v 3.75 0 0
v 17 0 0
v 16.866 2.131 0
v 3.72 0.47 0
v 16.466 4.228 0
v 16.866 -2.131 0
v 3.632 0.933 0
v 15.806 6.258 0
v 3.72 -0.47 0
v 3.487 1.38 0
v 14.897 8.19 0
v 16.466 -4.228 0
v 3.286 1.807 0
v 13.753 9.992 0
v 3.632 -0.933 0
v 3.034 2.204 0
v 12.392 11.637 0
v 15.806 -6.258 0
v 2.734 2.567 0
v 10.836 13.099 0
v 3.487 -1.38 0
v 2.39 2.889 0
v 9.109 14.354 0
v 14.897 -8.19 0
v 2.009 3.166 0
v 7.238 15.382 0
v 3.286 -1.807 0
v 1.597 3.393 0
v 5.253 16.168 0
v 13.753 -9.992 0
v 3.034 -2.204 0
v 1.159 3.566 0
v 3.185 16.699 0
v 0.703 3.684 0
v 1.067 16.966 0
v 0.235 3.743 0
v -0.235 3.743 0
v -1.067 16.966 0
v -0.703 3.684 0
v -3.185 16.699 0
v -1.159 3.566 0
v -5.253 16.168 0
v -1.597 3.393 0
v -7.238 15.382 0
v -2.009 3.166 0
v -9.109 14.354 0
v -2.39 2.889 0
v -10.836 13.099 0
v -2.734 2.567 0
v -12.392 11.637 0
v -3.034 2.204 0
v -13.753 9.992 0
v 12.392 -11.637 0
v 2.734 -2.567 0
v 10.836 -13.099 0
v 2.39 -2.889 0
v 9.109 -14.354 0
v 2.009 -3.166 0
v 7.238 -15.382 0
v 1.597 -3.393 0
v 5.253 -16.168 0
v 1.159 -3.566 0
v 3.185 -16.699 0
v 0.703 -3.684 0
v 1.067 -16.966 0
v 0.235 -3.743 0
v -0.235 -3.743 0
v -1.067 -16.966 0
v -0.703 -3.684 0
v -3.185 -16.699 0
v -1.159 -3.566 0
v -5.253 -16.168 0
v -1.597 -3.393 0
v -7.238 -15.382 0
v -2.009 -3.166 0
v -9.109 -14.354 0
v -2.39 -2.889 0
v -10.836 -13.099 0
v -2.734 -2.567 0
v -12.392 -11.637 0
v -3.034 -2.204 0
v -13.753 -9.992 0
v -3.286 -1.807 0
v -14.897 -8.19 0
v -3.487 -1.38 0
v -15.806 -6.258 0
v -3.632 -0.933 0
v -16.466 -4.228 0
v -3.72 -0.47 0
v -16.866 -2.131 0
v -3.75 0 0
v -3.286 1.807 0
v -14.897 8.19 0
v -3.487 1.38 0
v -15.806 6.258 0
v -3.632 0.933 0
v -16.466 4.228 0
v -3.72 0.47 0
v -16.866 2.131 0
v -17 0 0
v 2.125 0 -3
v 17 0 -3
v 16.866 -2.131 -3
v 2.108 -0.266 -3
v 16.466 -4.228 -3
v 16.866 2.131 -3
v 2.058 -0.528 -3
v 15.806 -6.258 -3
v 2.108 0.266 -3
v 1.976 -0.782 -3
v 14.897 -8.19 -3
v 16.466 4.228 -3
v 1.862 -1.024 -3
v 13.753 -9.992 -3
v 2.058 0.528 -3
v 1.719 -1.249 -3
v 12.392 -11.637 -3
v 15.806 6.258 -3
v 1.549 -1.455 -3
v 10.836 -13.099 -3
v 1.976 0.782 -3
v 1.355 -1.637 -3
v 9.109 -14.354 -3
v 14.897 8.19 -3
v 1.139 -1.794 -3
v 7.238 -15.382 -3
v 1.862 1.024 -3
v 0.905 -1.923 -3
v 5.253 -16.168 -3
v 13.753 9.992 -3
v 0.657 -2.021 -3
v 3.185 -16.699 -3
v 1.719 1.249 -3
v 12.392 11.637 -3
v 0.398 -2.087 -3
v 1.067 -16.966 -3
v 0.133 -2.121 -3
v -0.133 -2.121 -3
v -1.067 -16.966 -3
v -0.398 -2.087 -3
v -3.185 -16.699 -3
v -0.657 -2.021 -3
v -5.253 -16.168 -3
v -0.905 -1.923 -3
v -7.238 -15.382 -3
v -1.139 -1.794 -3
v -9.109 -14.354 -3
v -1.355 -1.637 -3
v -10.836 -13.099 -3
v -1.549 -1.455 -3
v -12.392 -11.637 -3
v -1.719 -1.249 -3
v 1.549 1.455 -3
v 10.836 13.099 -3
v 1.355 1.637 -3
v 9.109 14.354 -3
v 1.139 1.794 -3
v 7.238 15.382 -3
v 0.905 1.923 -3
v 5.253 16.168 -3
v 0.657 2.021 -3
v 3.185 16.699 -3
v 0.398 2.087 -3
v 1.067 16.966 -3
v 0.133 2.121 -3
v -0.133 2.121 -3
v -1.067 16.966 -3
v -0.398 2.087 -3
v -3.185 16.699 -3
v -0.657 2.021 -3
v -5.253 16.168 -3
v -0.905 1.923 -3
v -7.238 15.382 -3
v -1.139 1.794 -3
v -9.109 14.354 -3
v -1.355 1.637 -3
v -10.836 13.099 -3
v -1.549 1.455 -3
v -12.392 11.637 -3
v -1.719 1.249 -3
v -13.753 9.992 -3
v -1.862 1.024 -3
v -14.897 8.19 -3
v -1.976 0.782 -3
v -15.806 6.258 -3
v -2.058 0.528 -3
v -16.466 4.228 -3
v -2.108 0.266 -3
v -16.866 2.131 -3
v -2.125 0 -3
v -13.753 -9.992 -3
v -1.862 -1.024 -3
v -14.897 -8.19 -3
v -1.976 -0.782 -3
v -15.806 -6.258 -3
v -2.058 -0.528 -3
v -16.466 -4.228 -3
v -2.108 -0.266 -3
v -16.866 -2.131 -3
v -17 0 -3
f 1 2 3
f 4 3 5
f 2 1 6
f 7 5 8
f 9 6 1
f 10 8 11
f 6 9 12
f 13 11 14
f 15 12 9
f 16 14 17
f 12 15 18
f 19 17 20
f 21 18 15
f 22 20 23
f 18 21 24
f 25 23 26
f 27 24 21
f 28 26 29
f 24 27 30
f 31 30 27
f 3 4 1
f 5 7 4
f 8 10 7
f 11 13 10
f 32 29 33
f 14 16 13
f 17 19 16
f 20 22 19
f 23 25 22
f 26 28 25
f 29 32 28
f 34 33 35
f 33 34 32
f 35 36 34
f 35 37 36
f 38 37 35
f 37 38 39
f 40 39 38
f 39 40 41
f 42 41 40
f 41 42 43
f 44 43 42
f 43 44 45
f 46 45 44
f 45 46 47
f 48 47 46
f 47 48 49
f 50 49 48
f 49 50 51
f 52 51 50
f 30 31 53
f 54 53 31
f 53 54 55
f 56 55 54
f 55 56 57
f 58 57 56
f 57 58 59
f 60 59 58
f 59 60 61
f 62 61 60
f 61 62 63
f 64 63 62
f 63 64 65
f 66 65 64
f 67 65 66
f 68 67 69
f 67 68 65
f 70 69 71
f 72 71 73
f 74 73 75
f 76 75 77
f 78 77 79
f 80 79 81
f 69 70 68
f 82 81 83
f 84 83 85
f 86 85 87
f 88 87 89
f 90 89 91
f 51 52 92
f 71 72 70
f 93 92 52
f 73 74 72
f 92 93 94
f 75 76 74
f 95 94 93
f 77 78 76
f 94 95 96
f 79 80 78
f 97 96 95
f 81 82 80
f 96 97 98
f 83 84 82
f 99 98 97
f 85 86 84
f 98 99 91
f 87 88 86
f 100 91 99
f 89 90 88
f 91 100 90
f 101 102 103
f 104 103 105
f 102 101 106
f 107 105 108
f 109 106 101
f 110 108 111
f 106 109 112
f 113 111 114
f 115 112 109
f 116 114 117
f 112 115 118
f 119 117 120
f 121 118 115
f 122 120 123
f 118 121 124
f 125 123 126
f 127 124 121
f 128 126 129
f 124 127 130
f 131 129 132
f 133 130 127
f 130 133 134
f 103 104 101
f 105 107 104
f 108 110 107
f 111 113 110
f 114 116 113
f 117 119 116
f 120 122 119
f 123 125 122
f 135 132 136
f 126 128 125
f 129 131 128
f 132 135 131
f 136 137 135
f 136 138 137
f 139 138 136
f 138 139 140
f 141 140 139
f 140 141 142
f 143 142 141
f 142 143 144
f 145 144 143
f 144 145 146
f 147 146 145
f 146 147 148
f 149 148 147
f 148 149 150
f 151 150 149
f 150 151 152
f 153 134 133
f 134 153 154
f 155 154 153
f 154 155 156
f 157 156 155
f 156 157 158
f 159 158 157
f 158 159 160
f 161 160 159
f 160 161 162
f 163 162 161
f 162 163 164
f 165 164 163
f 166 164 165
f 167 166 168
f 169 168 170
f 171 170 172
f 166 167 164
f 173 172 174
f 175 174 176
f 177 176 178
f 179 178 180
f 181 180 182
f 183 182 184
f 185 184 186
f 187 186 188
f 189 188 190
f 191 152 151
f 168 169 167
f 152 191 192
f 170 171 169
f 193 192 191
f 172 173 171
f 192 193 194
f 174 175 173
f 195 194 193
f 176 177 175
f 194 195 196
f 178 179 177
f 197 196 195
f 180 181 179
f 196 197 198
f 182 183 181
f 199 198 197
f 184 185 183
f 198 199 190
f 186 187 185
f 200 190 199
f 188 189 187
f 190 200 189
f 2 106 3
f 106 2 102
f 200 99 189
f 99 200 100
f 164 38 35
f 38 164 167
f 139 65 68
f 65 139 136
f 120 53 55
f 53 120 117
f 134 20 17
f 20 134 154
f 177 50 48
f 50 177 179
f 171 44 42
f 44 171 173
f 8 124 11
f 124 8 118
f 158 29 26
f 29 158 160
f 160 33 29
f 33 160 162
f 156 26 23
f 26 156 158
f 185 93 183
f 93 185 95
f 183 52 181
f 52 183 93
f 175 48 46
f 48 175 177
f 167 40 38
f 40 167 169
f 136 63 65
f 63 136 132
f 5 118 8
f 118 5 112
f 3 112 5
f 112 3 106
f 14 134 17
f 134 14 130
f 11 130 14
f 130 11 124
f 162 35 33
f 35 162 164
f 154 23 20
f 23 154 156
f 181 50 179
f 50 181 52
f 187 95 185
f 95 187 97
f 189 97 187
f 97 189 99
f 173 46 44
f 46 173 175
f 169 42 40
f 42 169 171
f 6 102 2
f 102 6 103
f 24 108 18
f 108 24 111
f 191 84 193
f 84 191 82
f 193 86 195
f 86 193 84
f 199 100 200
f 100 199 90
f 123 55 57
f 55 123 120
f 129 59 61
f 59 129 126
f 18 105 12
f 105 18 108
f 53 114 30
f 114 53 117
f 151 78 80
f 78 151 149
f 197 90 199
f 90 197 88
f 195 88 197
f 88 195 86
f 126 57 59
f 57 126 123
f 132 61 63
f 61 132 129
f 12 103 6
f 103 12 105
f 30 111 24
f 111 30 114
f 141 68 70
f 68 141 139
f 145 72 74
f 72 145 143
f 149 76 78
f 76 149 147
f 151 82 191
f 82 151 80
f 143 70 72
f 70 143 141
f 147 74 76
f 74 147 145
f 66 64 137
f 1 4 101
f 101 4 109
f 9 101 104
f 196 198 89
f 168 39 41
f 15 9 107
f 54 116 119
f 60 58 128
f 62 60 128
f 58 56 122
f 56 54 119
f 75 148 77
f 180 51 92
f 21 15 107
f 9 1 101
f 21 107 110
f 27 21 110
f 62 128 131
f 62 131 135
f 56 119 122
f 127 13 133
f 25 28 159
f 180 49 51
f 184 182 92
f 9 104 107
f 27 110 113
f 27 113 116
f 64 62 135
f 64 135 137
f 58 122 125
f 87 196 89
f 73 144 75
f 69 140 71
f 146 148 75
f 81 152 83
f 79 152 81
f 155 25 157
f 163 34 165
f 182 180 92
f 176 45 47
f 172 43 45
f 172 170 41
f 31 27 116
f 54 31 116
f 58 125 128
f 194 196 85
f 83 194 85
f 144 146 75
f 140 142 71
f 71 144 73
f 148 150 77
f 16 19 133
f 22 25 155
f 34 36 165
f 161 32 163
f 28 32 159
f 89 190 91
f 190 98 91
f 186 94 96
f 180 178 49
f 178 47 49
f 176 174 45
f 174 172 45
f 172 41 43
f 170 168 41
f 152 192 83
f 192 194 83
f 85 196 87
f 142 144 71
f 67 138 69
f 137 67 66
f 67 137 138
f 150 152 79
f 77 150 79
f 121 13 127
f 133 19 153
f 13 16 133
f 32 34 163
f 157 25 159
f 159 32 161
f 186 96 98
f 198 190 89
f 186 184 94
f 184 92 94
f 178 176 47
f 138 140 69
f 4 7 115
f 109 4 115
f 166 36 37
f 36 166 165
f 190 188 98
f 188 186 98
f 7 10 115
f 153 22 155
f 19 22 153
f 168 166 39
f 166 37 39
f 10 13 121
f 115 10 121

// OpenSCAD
$fn = 50;


difference() {
	union() {
		translate(v = [0, 0, -3.0000000000]) {
			cylinder(h = 3, r = 7.0000000000);
		}
		translate(v = [0, 0, -3.0000000000]) {
			cylinder(h = 3, r = 17.0000000000);
		}
	}
	union() {
		translate(v = [0, 0, 0]) {
			rotate(a = [0, 0, 0]) {
				difference() {
					union() {
						#translate(v = [0, 0, -3.0000000000]) {
							cylinder(h = 3, r = 2.0000000000);
						}
						#translate(v = [0, 0, -3]) {
							cylinder(h = 3, r = 7.0000000000, r1 = 2.1250000000, r2 = 3.7500000000);
						}
						#translate(v = [0, 0, -3.0000000000]) {
							cylinder(h = 3, r = 2.1250000000);
						}
						#translate(v = [0, 0, -3.0000000000]) {
							cylinder(h = 3, r = 2.0000000000);
						}
					}
					union();
				}
			}
		}
	}
}
